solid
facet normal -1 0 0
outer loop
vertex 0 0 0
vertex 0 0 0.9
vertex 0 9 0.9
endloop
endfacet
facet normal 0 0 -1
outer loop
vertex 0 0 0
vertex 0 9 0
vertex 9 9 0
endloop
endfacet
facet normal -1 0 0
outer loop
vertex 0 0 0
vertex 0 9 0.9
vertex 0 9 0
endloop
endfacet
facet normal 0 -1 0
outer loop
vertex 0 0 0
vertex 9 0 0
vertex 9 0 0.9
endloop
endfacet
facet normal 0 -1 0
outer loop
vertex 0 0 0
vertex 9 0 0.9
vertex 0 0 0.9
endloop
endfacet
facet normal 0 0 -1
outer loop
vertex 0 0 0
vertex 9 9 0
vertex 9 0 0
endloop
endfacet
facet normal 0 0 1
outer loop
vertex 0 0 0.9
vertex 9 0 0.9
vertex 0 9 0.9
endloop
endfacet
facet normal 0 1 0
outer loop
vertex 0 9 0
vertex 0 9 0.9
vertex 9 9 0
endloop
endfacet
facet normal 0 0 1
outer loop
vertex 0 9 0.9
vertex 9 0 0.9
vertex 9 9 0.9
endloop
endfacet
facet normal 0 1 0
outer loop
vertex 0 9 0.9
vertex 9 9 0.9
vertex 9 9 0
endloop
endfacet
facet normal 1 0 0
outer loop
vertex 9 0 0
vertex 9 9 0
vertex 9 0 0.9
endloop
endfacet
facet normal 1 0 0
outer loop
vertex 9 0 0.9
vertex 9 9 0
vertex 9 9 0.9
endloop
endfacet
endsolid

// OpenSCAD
/* Warning, this is a very basic generator with a lot of approximation 
input data : [VQFN, TAB, 9x9x0.9mm, 64, , A, C04-21432A]
generated by com.zoubworld.electronics.cad.model3d.Basic
Date : Sun Feb 15 10:50:49 CET 2026
*/

//body
color("black")
translate([0,0,0])
cube([9.0,9.0,0.9], center=false);
